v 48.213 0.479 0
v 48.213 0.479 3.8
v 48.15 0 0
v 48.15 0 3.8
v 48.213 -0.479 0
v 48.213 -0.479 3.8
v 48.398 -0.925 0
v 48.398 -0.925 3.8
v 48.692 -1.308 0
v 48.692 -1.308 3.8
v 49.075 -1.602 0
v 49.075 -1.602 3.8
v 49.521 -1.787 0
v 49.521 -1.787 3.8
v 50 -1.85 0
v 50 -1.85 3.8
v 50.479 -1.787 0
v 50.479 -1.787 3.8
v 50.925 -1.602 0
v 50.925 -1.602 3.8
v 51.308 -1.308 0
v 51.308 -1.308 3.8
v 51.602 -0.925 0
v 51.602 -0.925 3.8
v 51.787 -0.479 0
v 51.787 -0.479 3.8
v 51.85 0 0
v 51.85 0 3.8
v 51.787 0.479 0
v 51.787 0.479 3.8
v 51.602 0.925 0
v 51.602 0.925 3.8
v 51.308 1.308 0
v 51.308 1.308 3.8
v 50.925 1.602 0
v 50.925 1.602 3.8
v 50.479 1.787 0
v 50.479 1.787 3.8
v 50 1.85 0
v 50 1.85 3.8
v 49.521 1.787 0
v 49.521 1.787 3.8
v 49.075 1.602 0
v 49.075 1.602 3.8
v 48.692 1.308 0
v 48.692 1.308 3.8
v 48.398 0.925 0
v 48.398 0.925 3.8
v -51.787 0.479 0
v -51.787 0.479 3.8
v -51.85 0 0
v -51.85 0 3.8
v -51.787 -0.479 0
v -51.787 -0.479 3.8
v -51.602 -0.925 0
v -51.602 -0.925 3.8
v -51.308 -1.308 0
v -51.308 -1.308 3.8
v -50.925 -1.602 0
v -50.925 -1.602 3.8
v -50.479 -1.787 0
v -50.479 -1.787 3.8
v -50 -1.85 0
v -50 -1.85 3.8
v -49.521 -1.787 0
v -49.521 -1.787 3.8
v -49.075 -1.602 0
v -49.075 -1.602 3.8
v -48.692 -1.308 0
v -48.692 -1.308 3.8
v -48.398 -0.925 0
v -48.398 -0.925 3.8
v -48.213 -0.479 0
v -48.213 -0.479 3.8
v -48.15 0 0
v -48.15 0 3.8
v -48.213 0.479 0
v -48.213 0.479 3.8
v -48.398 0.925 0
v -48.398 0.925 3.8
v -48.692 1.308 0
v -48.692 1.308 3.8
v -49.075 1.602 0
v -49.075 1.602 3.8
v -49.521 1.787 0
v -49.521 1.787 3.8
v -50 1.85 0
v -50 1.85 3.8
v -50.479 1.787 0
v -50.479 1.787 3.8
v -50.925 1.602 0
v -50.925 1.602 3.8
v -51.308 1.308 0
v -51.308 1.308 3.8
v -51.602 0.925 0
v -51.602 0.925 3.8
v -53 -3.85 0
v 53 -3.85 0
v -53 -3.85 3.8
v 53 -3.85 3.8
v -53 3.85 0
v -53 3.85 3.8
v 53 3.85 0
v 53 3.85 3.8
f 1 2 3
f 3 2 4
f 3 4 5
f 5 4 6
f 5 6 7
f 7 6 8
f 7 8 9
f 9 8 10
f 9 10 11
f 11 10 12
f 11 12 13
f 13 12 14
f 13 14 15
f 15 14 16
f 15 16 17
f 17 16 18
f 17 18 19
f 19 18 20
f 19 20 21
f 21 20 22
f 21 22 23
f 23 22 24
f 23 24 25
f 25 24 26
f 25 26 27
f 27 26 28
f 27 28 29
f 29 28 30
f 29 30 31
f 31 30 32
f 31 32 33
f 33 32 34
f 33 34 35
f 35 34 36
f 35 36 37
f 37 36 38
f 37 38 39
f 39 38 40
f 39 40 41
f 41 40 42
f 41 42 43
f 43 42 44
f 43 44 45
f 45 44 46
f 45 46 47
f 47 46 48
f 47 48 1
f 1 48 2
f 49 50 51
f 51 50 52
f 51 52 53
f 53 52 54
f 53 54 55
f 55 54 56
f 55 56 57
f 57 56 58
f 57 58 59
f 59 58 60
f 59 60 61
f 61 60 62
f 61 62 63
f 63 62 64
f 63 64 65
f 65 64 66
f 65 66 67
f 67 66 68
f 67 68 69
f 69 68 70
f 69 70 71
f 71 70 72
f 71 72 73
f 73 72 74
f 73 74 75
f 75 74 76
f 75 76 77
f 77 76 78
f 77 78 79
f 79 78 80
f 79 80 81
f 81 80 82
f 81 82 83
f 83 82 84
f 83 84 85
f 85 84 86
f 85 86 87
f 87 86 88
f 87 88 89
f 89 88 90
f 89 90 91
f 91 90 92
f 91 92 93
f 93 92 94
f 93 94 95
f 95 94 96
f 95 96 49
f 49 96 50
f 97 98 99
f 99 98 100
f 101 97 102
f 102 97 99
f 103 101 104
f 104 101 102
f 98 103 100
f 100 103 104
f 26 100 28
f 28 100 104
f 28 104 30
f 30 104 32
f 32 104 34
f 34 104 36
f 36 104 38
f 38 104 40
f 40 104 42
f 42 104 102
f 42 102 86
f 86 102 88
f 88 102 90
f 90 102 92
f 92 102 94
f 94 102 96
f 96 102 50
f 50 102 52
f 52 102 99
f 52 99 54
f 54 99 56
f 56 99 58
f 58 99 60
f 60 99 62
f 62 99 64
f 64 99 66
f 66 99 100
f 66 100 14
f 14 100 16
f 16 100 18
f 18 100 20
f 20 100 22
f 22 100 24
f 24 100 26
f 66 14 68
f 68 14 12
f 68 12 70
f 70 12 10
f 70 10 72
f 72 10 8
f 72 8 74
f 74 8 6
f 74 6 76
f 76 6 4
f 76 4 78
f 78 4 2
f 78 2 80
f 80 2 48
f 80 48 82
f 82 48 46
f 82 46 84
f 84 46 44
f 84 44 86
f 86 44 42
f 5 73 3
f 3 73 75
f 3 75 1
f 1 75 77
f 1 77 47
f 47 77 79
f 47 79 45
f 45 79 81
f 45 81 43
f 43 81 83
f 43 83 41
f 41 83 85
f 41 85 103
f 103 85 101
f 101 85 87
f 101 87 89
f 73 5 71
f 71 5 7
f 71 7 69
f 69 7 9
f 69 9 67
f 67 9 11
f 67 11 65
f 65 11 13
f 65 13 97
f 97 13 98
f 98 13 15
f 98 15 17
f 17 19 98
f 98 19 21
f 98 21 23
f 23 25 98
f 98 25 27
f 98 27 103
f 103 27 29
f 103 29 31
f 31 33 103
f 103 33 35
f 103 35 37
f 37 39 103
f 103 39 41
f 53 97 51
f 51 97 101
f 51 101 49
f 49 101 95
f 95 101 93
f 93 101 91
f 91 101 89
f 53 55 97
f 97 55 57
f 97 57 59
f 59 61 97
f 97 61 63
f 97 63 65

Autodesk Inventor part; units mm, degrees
ref_plane "YZ Plane" through (0, 0, 0) normal (1, 0, 0) x (0, 1, 0)
ref_plane "XZ Plane" through (0, 0, 0) normal (0, 1, 0) x (-1, 0, 0)
ref_plane "XY Plane" through (0, 0, 0) normal (0, 0, 1) x (1, 0, 0)
sketch "Skizze1" plane through (0, 0, 0) normal (0, 0, 1) x (1, 0, 0)
  line L0 (-53, -3.85) -> (53, -3.85)
  line L1 (53, -3.85) -> (53, 3.85)
  line L2 (53, 3.85) -> (-53, 3.85)
  line L3 (-53, 3.85) -> (-53, -3.85)
  line L4 (-53, -3.85) -> (53, 3.85) construction
  line L5 (53, -3.85) -> (-53, 3.85) construction
  point P0 (0, 0)
  dimension "d0" = 7.7
  dimension "d1" = 106
extrude "Extrusion1" add sketch "Skizze1" along normal blind 3.8
sketch "Skizze2" plane through (0, 0, 3.8) normal (0, 0, 1) x (1, 0, 0)
  line L0 (53, 3.85) -> (-53, 3.85) construction
  line L1 (50, 3.85) -> (50, -3.85) construction
  line L2 (-53, -3.85) -> (53, -3.85) construction
  line L3 (53, -3.85) -> (53, 3.85) construction
  circle A0 centre (50, 0) radius 1.85
  line L4 (0, 3.85) -> (0, -3.85) construction
  circle A1 centre (-50, 0) radius 1.85
  point P0 (0, 0)
  dimension "d4" = 3
  dimension "d5" = 3.7
extrude "Extrusion2" cut sketch "Skizze2" against normal through all
properties part number "3_3D-Druck"
